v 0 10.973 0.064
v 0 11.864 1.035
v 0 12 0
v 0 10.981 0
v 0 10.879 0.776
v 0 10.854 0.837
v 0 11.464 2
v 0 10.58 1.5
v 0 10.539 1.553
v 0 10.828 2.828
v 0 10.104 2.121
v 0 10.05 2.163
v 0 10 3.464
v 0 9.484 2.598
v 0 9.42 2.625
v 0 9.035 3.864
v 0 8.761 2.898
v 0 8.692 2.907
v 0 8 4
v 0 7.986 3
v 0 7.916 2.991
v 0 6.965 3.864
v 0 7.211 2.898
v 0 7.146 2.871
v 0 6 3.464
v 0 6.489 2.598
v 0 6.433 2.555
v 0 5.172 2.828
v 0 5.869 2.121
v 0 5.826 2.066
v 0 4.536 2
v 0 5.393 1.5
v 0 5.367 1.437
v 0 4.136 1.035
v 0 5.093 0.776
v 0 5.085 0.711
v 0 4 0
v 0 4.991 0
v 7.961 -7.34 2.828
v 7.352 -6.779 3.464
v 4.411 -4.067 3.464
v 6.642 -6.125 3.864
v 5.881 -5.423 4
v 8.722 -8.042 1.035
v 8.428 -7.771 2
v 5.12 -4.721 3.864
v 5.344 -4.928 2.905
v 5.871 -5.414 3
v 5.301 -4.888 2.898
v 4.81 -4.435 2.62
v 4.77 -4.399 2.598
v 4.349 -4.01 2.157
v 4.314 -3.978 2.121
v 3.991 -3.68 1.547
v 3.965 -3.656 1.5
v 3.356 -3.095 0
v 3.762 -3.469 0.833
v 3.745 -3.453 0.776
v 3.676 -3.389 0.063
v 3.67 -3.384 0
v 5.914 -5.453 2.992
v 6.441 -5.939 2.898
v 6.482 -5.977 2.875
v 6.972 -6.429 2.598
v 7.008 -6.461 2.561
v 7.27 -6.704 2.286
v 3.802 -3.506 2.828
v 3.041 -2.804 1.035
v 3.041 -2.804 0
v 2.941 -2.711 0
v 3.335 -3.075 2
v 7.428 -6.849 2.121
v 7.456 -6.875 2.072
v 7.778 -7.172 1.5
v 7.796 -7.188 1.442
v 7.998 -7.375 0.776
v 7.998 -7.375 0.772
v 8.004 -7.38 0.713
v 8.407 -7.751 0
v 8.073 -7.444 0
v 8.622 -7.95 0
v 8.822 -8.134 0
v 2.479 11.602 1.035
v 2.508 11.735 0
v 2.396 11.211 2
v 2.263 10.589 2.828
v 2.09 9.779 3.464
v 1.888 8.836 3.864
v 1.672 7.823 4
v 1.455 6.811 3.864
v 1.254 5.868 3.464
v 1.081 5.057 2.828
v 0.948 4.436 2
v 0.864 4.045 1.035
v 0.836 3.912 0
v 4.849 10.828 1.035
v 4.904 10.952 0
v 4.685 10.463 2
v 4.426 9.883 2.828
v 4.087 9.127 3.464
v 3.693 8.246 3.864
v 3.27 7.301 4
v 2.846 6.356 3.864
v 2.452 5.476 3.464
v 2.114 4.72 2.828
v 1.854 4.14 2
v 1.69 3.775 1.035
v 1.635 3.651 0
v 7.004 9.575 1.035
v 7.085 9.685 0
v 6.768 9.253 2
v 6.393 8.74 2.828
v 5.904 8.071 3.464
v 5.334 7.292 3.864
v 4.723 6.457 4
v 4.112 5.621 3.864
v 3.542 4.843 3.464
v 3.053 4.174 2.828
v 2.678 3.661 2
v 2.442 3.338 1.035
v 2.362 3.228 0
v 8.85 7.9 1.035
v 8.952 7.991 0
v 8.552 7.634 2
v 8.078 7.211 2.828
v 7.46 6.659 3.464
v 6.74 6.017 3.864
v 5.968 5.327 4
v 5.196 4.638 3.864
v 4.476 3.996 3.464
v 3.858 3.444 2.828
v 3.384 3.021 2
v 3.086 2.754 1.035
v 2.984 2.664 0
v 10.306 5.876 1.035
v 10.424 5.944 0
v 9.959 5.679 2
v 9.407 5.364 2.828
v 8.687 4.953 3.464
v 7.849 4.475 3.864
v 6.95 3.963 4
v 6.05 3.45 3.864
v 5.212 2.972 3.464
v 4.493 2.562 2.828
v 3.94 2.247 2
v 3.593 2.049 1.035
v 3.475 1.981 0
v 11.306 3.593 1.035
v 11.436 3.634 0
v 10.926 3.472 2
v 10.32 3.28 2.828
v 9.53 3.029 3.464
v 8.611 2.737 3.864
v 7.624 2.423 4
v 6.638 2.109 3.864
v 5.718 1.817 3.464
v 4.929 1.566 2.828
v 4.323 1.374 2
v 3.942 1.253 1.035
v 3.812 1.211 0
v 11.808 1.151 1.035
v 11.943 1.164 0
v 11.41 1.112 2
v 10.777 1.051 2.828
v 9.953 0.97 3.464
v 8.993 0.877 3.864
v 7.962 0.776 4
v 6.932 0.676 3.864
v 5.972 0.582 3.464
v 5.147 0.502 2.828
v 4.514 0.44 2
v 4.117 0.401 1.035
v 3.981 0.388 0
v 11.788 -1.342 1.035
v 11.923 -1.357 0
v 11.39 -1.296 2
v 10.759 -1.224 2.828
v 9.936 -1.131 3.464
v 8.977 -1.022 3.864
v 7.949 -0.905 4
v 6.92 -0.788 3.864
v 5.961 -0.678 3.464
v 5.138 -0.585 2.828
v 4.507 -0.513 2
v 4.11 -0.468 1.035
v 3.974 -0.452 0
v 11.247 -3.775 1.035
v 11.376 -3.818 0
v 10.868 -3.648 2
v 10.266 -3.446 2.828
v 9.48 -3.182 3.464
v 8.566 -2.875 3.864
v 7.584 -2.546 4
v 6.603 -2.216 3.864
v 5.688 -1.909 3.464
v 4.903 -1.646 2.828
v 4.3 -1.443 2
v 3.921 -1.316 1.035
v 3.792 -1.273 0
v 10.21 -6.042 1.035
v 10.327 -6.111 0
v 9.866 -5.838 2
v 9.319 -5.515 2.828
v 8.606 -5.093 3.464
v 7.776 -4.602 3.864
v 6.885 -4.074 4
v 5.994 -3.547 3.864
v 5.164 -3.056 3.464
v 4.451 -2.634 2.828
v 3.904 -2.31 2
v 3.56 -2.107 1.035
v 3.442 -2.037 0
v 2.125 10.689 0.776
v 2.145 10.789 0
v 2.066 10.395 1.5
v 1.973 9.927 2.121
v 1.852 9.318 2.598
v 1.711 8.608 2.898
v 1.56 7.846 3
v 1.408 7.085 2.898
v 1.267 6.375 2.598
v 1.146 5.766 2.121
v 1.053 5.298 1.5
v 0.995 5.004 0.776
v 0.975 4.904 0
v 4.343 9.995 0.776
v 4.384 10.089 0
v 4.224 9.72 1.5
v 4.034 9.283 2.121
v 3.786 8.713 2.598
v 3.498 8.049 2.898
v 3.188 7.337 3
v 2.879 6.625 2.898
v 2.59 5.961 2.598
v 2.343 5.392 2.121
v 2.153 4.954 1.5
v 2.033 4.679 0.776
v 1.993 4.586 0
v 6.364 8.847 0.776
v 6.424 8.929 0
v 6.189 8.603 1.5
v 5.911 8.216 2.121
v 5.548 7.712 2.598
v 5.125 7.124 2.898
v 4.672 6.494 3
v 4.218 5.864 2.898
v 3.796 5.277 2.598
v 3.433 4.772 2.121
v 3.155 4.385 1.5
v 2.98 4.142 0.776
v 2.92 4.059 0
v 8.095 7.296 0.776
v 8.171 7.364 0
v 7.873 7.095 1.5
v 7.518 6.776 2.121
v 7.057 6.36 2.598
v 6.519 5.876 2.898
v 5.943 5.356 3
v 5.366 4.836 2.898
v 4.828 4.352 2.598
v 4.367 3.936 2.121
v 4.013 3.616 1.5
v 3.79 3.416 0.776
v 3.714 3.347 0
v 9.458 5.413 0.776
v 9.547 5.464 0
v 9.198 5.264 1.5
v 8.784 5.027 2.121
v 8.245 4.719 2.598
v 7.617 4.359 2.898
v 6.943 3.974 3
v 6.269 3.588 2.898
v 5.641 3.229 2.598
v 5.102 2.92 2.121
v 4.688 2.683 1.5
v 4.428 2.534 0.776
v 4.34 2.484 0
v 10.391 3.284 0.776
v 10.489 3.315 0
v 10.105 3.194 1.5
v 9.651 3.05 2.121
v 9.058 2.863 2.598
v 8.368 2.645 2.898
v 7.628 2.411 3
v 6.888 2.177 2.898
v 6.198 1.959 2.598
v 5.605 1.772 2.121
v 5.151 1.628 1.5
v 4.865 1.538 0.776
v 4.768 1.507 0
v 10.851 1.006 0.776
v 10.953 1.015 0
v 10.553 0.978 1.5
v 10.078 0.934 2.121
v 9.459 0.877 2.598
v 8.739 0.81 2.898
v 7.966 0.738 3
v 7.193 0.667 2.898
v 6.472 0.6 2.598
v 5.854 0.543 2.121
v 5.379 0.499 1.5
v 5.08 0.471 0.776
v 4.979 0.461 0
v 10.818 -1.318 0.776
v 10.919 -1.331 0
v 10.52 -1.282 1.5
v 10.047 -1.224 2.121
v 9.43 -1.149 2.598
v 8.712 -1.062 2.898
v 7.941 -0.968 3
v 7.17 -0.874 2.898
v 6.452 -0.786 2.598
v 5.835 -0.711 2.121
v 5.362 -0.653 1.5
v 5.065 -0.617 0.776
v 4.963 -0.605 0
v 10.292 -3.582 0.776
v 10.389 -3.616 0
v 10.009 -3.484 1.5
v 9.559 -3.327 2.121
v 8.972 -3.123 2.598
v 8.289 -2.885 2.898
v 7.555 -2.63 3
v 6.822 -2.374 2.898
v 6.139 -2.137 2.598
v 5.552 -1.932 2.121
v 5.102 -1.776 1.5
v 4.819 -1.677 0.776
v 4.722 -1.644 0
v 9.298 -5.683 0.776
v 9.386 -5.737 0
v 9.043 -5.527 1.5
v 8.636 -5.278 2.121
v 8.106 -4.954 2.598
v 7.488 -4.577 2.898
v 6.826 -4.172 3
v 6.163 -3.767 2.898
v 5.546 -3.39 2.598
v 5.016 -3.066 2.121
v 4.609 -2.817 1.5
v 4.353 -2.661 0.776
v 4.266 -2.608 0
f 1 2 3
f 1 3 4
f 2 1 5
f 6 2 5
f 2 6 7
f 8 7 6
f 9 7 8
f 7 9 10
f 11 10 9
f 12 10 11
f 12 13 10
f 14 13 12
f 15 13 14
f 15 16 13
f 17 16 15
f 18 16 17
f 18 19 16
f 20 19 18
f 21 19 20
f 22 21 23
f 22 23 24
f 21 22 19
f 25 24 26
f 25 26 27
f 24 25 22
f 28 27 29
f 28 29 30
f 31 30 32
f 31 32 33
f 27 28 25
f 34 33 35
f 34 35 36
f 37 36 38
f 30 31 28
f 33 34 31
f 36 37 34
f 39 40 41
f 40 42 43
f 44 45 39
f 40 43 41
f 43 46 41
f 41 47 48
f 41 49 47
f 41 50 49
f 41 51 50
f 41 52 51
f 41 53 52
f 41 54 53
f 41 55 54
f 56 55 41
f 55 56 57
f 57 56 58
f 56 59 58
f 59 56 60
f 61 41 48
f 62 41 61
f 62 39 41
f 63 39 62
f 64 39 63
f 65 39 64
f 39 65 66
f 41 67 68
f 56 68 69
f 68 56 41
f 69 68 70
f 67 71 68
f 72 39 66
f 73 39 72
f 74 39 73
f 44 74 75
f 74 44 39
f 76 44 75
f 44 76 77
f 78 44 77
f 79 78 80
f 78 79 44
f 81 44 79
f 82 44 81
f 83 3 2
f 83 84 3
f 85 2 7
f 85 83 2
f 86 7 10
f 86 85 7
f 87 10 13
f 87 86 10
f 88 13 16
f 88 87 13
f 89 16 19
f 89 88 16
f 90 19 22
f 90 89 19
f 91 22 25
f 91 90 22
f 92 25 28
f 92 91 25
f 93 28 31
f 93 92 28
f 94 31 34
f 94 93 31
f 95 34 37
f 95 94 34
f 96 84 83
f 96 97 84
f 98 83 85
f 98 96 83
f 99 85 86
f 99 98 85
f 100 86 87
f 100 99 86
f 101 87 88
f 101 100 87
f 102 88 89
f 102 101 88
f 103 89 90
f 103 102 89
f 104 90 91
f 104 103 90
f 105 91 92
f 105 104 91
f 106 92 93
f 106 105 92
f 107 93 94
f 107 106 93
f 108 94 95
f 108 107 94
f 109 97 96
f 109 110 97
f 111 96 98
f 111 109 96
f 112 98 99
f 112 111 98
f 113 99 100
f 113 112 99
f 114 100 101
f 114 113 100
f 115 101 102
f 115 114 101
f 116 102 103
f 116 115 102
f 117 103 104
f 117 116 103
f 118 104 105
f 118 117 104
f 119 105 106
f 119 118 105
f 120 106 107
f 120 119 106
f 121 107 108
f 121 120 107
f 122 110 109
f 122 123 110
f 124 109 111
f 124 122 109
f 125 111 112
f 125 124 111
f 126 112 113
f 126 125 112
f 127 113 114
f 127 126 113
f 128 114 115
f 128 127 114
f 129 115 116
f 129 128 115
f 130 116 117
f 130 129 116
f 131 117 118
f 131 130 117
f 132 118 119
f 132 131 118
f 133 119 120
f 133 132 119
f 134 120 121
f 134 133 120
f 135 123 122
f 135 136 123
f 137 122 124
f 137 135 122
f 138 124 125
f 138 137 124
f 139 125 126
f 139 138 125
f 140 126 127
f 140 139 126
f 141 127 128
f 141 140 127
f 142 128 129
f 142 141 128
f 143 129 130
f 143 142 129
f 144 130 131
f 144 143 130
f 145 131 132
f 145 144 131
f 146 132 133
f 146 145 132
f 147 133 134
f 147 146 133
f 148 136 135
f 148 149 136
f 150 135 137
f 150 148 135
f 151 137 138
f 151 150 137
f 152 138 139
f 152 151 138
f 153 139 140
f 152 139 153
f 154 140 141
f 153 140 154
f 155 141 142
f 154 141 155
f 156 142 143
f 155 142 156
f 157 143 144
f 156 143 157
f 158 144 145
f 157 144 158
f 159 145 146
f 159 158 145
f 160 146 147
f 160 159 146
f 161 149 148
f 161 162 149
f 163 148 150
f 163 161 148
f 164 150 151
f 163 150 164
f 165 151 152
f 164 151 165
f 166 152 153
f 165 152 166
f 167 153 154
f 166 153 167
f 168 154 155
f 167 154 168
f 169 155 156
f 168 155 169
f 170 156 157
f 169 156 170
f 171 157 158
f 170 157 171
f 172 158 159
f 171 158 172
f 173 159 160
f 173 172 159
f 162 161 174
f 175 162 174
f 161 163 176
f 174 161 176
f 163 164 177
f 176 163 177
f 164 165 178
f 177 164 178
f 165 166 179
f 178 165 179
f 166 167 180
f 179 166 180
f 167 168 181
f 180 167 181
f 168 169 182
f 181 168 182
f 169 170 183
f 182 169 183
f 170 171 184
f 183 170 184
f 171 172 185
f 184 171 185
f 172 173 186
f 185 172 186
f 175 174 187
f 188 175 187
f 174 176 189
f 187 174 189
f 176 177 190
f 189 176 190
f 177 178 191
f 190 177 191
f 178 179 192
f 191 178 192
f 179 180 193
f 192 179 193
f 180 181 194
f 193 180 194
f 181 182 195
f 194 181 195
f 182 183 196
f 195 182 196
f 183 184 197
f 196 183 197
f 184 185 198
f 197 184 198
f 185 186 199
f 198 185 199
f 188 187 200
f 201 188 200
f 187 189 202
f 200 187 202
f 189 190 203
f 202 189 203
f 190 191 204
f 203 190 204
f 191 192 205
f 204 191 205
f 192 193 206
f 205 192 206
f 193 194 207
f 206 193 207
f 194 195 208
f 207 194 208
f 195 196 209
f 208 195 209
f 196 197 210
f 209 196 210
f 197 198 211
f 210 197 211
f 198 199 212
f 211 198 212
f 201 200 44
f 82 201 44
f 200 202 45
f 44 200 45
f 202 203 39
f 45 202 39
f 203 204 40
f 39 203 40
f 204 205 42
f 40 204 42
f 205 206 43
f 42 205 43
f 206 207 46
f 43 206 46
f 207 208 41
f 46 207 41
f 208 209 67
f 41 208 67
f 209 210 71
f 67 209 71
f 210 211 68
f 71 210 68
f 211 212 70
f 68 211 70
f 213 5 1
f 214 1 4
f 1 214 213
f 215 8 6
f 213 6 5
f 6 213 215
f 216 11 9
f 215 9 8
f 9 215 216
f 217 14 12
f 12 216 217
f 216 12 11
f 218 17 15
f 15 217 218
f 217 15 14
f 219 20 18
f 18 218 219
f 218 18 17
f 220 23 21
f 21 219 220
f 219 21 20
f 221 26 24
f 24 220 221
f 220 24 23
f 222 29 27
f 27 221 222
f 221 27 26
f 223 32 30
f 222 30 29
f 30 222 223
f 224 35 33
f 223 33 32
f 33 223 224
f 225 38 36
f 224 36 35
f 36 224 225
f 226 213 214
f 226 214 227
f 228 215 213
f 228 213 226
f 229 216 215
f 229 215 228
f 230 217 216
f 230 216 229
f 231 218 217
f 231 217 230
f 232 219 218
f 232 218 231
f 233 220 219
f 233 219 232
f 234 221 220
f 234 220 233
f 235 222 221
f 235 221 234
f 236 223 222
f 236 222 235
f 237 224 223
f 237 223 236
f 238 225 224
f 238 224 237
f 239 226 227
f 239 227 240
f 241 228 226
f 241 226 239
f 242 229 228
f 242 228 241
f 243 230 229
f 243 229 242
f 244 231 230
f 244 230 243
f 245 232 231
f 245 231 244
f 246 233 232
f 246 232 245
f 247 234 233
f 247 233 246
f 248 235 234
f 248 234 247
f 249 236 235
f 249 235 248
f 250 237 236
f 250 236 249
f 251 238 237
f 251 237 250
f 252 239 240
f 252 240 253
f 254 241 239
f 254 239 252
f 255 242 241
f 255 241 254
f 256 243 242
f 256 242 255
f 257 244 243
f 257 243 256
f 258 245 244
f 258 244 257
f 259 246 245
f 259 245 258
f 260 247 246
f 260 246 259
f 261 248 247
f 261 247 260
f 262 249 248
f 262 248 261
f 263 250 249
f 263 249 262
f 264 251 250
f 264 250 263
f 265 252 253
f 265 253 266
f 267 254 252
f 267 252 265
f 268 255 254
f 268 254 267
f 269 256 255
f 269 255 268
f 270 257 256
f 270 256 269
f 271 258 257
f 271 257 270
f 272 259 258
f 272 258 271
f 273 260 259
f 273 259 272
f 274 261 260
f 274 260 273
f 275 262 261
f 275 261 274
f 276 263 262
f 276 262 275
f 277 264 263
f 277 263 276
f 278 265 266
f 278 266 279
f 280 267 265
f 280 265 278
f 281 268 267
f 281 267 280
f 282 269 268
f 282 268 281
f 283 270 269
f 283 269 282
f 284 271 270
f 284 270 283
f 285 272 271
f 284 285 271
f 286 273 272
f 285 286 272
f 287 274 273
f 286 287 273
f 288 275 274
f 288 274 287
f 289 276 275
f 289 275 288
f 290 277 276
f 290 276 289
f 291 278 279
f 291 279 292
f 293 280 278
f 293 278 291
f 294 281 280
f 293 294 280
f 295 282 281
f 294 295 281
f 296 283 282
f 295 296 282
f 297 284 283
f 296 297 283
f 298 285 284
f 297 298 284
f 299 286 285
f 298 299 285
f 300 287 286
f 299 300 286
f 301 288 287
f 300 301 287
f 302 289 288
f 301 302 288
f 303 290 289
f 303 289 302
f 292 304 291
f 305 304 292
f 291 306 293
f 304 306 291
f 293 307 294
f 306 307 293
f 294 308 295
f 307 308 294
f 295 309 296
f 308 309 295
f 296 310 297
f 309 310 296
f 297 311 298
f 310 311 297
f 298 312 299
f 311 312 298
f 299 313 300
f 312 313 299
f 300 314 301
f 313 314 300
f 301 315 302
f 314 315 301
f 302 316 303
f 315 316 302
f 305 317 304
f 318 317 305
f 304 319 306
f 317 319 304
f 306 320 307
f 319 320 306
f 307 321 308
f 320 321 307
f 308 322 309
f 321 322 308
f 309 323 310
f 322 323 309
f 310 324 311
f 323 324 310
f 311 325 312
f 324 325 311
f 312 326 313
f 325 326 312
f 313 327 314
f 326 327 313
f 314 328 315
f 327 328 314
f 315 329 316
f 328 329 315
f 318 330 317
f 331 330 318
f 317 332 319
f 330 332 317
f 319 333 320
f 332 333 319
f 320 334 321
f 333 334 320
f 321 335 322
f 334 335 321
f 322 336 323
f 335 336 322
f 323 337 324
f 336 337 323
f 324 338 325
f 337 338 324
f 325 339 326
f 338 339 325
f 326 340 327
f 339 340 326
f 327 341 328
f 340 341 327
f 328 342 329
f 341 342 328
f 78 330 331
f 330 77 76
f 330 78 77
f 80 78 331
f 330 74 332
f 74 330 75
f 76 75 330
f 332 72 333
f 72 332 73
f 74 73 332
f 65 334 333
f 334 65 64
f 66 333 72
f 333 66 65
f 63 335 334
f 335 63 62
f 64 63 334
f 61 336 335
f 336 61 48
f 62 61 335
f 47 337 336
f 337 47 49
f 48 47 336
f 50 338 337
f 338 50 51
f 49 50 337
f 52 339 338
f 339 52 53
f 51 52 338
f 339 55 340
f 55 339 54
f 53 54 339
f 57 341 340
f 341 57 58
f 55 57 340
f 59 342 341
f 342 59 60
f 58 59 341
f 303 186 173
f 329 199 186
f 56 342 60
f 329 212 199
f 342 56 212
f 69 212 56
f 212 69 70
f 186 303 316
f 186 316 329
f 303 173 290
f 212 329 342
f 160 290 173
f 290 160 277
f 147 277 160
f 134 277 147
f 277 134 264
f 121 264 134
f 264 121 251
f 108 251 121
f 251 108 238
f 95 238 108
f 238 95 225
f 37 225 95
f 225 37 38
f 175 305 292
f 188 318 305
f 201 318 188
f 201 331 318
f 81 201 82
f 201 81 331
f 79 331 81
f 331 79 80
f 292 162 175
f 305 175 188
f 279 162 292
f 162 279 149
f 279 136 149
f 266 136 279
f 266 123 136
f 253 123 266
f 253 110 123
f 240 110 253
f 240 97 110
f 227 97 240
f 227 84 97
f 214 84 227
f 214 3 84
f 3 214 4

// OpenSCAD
// file: ../build_environments.scad
// build_environments.scad: modules to build level sections
//

module pool(diameter=10.0, wall_height=2.0, step_width=3.0, connections=[])
{
    difference() {
        union() {
        difference() {
            cylinder(h=0.5,r1=diameter+step_width,r2=diameter+step_width,$fn=48);
            translate([0,0,-0.1])
                cylinder(h=0.7,r1=diameter,r2=diameter,$fn=48);
        }
        difference() {
            cylinder(h=wall_height,r1=diameter+step_width+1.0,r2=diameter+step_width+1.0,$fn=48);
            translate([0,0,-0.1])
                cylinder(h=wall_height+0.2,r1=diameter+step_width,r2=diameter+step_width,$fn=48);
        }
        }
    
        for (c = connections)
        {
            rotate([0,90,0]) {
                angle = atan2(c[1],c[0]);
                rotate([-angle,0,0]) {
                    cylinder(h=diameter+5.0,r1=c[2],r2=c[2],$fn=48);
                }
            }
        }
    }
}

module straight(length=10.0, width=2.0, dy1=0.0, dy2=0.0, dz=0.0)
{
    dims = [0, 0, 0, 0, 0, (dz/length)];
    matrix = [
        [ 1, dims[0], dims[1], 0 ],
        [ dims[2], 1, dims[4], 0 ],
        [ dims[5], dims[3], 1, 0 ],
        [ 0, 0, 0, 1 ]
    ];
    multmatrix(matrix)
    difference() {
        translate([dy1,0,0])
        union() {
            rotate([0,90,0]) {
                difference() {
                    cylinder(h=(length-dy1-dy2),r1=width+1.0,r2=width+1.0,$fn=24);
                    translate([0,0,-0.1])
                        cylinder(h=(length-dy1-dy2+0.2),r1=width,r2=width,$fn=24);
                }
                difference() {
                    cylinder(h=1.0,r1=width+2.0,r2=width+2.0,$fn=24);
                    translate([0,0,-0.1])
                        cylinder(h=1.2,r1=width,r2=width,$fn=24);
                }
                translate([0,0,(length-dy1-dy2)-1.0]) {
                    difference() {
                        cylinder(h=1.0,r1=width+2.0,r2=width+2.0,$fn=24);
                        translate([0,0,-0.1])
                            cylinder(h=1.2,r1=width,r2=width,$fn=24);
                    }
                }
            }
        }
        translate([0,0,-(2*width+4.0)/2])
            cube([3*length,3*length,2*width+4.0],center=true);
    }
}

module curve(p0=[0,0], center=[0,0], dir=1, angle=0.0, width=2.0)
{
    radius = sqrt((p0[0]-center[0])*(p0[0]-center[0]) + (p0[1]-center[1])*(p0[1]-center[1]));
    if (dir == 0) {
        difference() {
            rotate([0,0,-90])
            difference() {
                rotate_extrude(angle = angle, convexity = 10, $fn=32)
                    translate([radius, 0, 0])
                        circle(r = width+1.0,$fn=24);
                rotate([0,0,-1.0])
                    rotate_extrude(angle = angle+2.0, convexity = 10, $fn=32)
                        translate([radius, 0, 0])
                            circle(r = width,$fn=24);
            }
            translate([0,0,-(2*width+4.0)/2])
                cube([5*radius,5*radius,2*width+4.0],center=true);
        }
    }
    else {
        difference() {
            rotate([0,0,90])
            difference() {
                rotate_extrude(angle = -angle, convexity = 10, $fn=32)
                    translate([radius, 0, 0])
                        circle(r = width+1.0,$fn=24);
                rotate([0,0,1.0])
                    rotate_extrude(angle = -angle-2.0, convexity = 10, $fn=32)
                        translate([radius, 0, 0])
                            circle(r = width,$fn=24);
            }
            translate([0,0,-(2*width+4.0)/2])
                cube([5*radius,5*radius,2*width+4.0],center=true);
        }
    }

}

// test pool
//pool(diameter=12.0000, wall_height=3.0000, step_width=3.0000, connections=[[0.0000,-26.0000,2.0000], [23.6074,0.0000,2.0000]]);

// test straight, slope
//straight(length=26.0000, width=2.0000, dy1=11.8322, dy2=6.7082, dz=0.0000);
//straight(length=29.1549, width=12.0000, dy1=0.0000, dy2=0.0000, dz=-15.0000);

// test curve
//curve(p0=[23.6074, 0.0000], center=[23.6074, 5.0000], dir=0, angle=60.1011, width=2.0000);
//curve(p0=[33.6426, 12.4219], center=[37.9771, 9.9295], dir=1, angle=120.4627, width=2.0000);
// main file
use <../build_environments.scad>;
curve(p0=[11.5571, 51.5581], center=[18.8365, 54.8762], dir=1, angle=132.6779, width=3.0000);
